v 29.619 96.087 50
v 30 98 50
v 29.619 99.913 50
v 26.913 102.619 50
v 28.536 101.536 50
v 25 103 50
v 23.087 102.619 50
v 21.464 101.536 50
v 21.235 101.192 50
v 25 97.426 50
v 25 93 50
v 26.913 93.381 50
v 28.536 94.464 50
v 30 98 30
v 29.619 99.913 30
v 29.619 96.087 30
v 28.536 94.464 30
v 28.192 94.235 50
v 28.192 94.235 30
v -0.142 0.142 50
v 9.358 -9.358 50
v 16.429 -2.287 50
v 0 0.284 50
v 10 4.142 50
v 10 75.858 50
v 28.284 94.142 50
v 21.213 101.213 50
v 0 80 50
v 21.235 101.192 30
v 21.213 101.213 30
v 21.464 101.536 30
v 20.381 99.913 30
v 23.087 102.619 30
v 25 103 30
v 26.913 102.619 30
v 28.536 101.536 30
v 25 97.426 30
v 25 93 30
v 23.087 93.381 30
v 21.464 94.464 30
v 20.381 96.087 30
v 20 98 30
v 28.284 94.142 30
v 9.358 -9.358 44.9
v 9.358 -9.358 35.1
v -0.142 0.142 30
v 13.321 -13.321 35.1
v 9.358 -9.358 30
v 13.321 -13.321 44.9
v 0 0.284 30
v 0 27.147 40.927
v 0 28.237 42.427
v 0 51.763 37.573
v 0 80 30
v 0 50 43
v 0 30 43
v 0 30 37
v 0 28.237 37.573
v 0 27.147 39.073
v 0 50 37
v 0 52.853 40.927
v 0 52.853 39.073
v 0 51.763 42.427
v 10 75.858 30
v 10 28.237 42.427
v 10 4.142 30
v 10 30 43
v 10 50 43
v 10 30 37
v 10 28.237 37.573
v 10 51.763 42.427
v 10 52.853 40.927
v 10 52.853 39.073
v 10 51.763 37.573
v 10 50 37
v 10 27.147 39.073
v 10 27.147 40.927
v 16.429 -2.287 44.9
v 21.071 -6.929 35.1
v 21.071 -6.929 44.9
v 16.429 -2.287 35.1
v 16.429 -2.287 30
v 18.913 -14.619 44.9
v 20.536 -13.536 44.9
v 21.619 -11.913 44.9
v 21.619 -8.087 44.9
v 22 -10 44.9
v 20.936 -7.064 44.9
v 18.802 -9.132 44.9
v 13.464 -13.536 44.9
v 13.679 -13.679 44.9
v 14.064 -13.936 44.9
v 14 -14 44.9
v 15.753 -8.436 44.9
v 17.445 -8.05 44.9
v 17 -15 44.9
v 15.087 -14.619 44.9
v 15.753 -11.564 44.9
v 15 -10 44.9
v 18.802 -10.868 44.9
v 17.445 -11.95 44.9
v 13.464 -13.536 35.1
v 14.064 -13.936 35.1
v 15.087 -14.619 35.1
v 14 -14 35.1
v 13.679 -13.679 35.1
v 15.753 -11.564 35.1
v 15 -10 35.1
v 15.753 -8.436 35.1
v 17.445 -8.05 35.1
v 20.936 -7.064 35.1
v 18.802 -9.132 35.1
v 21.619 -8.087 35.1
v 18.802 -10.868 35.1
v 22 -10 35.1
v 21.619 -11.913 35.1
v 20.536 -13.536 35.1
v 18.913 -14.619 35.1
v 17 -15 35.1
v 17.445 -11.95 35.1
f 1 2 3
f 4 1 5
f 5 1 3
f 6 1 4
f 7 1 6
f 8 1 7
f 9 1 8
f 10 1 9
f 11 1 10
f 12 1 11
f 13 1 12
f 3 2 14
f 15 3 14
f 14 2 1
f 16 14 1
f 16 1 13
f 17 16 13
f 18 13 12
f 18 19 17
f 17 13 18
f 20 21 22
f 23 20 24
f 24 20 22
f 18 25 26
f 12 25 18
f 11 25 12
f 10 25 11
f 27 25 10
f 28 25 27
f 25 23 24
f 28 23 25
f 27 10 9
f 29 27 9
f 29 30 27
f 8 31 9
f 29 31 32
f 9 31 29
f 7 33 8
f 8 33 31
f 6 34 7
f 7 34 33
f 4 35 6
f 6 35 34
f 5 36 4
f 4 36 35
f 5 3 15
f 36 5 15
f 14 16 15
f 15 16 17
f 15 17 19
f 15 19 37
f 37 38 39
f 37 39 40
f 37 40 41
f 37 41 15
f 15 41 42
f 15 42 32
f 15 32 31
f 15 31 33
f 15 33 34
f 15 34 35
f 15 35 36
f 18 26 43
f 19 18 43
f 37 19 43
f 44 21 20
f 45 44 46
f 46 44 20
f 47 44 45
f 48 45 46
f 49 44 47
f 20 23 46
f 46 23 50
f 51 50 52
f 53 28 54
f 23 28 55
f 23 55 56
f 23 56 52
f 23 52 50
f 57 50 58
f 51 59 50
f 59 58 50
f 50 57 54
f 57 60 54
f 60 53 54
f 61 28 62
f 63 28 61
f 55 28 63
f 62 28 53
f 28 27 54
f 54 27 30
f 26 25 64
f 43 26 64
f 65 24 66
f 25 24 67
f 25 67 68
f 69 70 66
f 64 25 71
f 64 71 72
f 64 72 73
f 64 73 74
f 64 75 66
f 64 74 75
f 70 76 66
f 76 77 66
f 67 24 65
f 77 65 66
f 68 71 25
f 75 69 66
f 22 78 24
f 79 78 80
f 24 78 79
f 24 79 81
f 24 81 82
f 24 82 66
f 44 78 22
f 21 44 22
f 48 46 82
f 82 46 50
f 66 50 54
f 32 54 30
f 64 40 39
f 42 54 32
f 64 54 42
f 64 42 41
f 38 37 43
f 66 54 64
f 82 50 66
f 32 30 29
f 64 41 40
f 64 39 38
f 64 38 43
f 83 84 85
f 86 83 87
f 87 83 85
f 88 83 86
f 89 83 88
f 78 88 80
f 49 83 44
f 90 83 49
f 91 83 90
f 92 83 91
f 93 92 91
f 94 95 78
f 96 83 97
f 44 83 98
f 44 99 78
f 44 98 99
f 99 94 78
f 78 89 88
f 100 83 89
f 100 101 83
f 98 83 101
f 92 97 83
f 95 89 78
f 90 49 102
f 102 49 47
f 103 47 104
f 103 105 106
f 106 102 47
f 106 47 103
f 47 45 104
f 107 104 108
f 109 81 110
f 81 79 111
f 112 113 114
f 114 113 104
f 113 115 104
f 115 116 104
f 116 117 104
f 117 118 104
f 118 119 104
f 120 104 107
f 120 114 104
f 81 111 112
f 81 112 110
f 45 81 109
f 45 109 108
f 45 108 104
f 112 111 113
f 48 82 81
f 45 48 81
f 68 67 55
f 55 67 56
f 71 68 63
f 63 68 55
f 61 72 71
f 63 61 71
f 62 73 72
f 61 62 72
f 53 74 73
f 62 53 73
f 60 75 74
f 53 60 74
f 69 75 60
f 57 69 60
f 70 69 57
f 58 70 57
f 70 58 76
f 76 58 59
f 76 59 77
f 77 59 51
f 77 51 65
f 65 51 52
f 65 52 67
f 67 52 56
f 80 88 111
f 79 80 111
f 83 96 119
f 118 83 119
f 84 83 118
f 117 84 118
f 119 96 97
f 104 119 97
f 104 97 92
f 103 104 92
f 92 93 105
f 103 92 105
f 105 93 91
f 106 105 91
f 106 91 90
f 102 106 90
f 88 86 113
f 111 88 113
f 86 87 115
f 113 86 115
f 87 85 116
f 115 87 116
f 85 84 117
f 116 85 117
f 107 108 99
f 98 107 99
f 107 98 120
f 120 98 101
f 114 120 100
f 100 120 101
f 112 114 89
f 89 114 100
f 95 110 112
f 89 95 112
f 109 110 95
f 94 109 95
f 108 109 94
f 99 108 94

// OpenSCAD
use <MCAD/regular_shapes.scad>


module A()
	{
		union()
		{
		difference()
		{
		translate([0,-14,14])rotate([-45,0,0])cube([20,20,10]);
		translate([-1,-10,17])rotate([0,90,0])cylinder(22,2,2);
			}
			difference()
			{
			translate([0,-10,17])rotate([0,90,0])cylinder(20,5,5);
			translate([-1,-10,17])rotate([0,90,0])cylinder(22,2,2);
			}
		}
	}
module alto()
{

difference()
{
translate([-50,0,0])cube([20,80,10]);
translate([-40,30,-0.5]) cylinder(11,3,3);
translate([-40,50,-0.5]) cylinder(11,3,3);
translate([-43,30,-0.5]) cube([6,20,11]);
}

difference()
{
translate([-50,0,0])A();
translate([-50.1,-25,22])rotate([-45,0,0])cube([5.2,20,15]);
translate([-35.1,-25,22])rotate([-45,0,0])cube([5.2,20,15]);
}


translate([-50,80,0])rotate([45,0,0])cube([20,30,10]);
			
translate([-50,98,25])rotate([0,90,0])cylinder(20,5,5);
}

rotate([0,90,0])alto();
